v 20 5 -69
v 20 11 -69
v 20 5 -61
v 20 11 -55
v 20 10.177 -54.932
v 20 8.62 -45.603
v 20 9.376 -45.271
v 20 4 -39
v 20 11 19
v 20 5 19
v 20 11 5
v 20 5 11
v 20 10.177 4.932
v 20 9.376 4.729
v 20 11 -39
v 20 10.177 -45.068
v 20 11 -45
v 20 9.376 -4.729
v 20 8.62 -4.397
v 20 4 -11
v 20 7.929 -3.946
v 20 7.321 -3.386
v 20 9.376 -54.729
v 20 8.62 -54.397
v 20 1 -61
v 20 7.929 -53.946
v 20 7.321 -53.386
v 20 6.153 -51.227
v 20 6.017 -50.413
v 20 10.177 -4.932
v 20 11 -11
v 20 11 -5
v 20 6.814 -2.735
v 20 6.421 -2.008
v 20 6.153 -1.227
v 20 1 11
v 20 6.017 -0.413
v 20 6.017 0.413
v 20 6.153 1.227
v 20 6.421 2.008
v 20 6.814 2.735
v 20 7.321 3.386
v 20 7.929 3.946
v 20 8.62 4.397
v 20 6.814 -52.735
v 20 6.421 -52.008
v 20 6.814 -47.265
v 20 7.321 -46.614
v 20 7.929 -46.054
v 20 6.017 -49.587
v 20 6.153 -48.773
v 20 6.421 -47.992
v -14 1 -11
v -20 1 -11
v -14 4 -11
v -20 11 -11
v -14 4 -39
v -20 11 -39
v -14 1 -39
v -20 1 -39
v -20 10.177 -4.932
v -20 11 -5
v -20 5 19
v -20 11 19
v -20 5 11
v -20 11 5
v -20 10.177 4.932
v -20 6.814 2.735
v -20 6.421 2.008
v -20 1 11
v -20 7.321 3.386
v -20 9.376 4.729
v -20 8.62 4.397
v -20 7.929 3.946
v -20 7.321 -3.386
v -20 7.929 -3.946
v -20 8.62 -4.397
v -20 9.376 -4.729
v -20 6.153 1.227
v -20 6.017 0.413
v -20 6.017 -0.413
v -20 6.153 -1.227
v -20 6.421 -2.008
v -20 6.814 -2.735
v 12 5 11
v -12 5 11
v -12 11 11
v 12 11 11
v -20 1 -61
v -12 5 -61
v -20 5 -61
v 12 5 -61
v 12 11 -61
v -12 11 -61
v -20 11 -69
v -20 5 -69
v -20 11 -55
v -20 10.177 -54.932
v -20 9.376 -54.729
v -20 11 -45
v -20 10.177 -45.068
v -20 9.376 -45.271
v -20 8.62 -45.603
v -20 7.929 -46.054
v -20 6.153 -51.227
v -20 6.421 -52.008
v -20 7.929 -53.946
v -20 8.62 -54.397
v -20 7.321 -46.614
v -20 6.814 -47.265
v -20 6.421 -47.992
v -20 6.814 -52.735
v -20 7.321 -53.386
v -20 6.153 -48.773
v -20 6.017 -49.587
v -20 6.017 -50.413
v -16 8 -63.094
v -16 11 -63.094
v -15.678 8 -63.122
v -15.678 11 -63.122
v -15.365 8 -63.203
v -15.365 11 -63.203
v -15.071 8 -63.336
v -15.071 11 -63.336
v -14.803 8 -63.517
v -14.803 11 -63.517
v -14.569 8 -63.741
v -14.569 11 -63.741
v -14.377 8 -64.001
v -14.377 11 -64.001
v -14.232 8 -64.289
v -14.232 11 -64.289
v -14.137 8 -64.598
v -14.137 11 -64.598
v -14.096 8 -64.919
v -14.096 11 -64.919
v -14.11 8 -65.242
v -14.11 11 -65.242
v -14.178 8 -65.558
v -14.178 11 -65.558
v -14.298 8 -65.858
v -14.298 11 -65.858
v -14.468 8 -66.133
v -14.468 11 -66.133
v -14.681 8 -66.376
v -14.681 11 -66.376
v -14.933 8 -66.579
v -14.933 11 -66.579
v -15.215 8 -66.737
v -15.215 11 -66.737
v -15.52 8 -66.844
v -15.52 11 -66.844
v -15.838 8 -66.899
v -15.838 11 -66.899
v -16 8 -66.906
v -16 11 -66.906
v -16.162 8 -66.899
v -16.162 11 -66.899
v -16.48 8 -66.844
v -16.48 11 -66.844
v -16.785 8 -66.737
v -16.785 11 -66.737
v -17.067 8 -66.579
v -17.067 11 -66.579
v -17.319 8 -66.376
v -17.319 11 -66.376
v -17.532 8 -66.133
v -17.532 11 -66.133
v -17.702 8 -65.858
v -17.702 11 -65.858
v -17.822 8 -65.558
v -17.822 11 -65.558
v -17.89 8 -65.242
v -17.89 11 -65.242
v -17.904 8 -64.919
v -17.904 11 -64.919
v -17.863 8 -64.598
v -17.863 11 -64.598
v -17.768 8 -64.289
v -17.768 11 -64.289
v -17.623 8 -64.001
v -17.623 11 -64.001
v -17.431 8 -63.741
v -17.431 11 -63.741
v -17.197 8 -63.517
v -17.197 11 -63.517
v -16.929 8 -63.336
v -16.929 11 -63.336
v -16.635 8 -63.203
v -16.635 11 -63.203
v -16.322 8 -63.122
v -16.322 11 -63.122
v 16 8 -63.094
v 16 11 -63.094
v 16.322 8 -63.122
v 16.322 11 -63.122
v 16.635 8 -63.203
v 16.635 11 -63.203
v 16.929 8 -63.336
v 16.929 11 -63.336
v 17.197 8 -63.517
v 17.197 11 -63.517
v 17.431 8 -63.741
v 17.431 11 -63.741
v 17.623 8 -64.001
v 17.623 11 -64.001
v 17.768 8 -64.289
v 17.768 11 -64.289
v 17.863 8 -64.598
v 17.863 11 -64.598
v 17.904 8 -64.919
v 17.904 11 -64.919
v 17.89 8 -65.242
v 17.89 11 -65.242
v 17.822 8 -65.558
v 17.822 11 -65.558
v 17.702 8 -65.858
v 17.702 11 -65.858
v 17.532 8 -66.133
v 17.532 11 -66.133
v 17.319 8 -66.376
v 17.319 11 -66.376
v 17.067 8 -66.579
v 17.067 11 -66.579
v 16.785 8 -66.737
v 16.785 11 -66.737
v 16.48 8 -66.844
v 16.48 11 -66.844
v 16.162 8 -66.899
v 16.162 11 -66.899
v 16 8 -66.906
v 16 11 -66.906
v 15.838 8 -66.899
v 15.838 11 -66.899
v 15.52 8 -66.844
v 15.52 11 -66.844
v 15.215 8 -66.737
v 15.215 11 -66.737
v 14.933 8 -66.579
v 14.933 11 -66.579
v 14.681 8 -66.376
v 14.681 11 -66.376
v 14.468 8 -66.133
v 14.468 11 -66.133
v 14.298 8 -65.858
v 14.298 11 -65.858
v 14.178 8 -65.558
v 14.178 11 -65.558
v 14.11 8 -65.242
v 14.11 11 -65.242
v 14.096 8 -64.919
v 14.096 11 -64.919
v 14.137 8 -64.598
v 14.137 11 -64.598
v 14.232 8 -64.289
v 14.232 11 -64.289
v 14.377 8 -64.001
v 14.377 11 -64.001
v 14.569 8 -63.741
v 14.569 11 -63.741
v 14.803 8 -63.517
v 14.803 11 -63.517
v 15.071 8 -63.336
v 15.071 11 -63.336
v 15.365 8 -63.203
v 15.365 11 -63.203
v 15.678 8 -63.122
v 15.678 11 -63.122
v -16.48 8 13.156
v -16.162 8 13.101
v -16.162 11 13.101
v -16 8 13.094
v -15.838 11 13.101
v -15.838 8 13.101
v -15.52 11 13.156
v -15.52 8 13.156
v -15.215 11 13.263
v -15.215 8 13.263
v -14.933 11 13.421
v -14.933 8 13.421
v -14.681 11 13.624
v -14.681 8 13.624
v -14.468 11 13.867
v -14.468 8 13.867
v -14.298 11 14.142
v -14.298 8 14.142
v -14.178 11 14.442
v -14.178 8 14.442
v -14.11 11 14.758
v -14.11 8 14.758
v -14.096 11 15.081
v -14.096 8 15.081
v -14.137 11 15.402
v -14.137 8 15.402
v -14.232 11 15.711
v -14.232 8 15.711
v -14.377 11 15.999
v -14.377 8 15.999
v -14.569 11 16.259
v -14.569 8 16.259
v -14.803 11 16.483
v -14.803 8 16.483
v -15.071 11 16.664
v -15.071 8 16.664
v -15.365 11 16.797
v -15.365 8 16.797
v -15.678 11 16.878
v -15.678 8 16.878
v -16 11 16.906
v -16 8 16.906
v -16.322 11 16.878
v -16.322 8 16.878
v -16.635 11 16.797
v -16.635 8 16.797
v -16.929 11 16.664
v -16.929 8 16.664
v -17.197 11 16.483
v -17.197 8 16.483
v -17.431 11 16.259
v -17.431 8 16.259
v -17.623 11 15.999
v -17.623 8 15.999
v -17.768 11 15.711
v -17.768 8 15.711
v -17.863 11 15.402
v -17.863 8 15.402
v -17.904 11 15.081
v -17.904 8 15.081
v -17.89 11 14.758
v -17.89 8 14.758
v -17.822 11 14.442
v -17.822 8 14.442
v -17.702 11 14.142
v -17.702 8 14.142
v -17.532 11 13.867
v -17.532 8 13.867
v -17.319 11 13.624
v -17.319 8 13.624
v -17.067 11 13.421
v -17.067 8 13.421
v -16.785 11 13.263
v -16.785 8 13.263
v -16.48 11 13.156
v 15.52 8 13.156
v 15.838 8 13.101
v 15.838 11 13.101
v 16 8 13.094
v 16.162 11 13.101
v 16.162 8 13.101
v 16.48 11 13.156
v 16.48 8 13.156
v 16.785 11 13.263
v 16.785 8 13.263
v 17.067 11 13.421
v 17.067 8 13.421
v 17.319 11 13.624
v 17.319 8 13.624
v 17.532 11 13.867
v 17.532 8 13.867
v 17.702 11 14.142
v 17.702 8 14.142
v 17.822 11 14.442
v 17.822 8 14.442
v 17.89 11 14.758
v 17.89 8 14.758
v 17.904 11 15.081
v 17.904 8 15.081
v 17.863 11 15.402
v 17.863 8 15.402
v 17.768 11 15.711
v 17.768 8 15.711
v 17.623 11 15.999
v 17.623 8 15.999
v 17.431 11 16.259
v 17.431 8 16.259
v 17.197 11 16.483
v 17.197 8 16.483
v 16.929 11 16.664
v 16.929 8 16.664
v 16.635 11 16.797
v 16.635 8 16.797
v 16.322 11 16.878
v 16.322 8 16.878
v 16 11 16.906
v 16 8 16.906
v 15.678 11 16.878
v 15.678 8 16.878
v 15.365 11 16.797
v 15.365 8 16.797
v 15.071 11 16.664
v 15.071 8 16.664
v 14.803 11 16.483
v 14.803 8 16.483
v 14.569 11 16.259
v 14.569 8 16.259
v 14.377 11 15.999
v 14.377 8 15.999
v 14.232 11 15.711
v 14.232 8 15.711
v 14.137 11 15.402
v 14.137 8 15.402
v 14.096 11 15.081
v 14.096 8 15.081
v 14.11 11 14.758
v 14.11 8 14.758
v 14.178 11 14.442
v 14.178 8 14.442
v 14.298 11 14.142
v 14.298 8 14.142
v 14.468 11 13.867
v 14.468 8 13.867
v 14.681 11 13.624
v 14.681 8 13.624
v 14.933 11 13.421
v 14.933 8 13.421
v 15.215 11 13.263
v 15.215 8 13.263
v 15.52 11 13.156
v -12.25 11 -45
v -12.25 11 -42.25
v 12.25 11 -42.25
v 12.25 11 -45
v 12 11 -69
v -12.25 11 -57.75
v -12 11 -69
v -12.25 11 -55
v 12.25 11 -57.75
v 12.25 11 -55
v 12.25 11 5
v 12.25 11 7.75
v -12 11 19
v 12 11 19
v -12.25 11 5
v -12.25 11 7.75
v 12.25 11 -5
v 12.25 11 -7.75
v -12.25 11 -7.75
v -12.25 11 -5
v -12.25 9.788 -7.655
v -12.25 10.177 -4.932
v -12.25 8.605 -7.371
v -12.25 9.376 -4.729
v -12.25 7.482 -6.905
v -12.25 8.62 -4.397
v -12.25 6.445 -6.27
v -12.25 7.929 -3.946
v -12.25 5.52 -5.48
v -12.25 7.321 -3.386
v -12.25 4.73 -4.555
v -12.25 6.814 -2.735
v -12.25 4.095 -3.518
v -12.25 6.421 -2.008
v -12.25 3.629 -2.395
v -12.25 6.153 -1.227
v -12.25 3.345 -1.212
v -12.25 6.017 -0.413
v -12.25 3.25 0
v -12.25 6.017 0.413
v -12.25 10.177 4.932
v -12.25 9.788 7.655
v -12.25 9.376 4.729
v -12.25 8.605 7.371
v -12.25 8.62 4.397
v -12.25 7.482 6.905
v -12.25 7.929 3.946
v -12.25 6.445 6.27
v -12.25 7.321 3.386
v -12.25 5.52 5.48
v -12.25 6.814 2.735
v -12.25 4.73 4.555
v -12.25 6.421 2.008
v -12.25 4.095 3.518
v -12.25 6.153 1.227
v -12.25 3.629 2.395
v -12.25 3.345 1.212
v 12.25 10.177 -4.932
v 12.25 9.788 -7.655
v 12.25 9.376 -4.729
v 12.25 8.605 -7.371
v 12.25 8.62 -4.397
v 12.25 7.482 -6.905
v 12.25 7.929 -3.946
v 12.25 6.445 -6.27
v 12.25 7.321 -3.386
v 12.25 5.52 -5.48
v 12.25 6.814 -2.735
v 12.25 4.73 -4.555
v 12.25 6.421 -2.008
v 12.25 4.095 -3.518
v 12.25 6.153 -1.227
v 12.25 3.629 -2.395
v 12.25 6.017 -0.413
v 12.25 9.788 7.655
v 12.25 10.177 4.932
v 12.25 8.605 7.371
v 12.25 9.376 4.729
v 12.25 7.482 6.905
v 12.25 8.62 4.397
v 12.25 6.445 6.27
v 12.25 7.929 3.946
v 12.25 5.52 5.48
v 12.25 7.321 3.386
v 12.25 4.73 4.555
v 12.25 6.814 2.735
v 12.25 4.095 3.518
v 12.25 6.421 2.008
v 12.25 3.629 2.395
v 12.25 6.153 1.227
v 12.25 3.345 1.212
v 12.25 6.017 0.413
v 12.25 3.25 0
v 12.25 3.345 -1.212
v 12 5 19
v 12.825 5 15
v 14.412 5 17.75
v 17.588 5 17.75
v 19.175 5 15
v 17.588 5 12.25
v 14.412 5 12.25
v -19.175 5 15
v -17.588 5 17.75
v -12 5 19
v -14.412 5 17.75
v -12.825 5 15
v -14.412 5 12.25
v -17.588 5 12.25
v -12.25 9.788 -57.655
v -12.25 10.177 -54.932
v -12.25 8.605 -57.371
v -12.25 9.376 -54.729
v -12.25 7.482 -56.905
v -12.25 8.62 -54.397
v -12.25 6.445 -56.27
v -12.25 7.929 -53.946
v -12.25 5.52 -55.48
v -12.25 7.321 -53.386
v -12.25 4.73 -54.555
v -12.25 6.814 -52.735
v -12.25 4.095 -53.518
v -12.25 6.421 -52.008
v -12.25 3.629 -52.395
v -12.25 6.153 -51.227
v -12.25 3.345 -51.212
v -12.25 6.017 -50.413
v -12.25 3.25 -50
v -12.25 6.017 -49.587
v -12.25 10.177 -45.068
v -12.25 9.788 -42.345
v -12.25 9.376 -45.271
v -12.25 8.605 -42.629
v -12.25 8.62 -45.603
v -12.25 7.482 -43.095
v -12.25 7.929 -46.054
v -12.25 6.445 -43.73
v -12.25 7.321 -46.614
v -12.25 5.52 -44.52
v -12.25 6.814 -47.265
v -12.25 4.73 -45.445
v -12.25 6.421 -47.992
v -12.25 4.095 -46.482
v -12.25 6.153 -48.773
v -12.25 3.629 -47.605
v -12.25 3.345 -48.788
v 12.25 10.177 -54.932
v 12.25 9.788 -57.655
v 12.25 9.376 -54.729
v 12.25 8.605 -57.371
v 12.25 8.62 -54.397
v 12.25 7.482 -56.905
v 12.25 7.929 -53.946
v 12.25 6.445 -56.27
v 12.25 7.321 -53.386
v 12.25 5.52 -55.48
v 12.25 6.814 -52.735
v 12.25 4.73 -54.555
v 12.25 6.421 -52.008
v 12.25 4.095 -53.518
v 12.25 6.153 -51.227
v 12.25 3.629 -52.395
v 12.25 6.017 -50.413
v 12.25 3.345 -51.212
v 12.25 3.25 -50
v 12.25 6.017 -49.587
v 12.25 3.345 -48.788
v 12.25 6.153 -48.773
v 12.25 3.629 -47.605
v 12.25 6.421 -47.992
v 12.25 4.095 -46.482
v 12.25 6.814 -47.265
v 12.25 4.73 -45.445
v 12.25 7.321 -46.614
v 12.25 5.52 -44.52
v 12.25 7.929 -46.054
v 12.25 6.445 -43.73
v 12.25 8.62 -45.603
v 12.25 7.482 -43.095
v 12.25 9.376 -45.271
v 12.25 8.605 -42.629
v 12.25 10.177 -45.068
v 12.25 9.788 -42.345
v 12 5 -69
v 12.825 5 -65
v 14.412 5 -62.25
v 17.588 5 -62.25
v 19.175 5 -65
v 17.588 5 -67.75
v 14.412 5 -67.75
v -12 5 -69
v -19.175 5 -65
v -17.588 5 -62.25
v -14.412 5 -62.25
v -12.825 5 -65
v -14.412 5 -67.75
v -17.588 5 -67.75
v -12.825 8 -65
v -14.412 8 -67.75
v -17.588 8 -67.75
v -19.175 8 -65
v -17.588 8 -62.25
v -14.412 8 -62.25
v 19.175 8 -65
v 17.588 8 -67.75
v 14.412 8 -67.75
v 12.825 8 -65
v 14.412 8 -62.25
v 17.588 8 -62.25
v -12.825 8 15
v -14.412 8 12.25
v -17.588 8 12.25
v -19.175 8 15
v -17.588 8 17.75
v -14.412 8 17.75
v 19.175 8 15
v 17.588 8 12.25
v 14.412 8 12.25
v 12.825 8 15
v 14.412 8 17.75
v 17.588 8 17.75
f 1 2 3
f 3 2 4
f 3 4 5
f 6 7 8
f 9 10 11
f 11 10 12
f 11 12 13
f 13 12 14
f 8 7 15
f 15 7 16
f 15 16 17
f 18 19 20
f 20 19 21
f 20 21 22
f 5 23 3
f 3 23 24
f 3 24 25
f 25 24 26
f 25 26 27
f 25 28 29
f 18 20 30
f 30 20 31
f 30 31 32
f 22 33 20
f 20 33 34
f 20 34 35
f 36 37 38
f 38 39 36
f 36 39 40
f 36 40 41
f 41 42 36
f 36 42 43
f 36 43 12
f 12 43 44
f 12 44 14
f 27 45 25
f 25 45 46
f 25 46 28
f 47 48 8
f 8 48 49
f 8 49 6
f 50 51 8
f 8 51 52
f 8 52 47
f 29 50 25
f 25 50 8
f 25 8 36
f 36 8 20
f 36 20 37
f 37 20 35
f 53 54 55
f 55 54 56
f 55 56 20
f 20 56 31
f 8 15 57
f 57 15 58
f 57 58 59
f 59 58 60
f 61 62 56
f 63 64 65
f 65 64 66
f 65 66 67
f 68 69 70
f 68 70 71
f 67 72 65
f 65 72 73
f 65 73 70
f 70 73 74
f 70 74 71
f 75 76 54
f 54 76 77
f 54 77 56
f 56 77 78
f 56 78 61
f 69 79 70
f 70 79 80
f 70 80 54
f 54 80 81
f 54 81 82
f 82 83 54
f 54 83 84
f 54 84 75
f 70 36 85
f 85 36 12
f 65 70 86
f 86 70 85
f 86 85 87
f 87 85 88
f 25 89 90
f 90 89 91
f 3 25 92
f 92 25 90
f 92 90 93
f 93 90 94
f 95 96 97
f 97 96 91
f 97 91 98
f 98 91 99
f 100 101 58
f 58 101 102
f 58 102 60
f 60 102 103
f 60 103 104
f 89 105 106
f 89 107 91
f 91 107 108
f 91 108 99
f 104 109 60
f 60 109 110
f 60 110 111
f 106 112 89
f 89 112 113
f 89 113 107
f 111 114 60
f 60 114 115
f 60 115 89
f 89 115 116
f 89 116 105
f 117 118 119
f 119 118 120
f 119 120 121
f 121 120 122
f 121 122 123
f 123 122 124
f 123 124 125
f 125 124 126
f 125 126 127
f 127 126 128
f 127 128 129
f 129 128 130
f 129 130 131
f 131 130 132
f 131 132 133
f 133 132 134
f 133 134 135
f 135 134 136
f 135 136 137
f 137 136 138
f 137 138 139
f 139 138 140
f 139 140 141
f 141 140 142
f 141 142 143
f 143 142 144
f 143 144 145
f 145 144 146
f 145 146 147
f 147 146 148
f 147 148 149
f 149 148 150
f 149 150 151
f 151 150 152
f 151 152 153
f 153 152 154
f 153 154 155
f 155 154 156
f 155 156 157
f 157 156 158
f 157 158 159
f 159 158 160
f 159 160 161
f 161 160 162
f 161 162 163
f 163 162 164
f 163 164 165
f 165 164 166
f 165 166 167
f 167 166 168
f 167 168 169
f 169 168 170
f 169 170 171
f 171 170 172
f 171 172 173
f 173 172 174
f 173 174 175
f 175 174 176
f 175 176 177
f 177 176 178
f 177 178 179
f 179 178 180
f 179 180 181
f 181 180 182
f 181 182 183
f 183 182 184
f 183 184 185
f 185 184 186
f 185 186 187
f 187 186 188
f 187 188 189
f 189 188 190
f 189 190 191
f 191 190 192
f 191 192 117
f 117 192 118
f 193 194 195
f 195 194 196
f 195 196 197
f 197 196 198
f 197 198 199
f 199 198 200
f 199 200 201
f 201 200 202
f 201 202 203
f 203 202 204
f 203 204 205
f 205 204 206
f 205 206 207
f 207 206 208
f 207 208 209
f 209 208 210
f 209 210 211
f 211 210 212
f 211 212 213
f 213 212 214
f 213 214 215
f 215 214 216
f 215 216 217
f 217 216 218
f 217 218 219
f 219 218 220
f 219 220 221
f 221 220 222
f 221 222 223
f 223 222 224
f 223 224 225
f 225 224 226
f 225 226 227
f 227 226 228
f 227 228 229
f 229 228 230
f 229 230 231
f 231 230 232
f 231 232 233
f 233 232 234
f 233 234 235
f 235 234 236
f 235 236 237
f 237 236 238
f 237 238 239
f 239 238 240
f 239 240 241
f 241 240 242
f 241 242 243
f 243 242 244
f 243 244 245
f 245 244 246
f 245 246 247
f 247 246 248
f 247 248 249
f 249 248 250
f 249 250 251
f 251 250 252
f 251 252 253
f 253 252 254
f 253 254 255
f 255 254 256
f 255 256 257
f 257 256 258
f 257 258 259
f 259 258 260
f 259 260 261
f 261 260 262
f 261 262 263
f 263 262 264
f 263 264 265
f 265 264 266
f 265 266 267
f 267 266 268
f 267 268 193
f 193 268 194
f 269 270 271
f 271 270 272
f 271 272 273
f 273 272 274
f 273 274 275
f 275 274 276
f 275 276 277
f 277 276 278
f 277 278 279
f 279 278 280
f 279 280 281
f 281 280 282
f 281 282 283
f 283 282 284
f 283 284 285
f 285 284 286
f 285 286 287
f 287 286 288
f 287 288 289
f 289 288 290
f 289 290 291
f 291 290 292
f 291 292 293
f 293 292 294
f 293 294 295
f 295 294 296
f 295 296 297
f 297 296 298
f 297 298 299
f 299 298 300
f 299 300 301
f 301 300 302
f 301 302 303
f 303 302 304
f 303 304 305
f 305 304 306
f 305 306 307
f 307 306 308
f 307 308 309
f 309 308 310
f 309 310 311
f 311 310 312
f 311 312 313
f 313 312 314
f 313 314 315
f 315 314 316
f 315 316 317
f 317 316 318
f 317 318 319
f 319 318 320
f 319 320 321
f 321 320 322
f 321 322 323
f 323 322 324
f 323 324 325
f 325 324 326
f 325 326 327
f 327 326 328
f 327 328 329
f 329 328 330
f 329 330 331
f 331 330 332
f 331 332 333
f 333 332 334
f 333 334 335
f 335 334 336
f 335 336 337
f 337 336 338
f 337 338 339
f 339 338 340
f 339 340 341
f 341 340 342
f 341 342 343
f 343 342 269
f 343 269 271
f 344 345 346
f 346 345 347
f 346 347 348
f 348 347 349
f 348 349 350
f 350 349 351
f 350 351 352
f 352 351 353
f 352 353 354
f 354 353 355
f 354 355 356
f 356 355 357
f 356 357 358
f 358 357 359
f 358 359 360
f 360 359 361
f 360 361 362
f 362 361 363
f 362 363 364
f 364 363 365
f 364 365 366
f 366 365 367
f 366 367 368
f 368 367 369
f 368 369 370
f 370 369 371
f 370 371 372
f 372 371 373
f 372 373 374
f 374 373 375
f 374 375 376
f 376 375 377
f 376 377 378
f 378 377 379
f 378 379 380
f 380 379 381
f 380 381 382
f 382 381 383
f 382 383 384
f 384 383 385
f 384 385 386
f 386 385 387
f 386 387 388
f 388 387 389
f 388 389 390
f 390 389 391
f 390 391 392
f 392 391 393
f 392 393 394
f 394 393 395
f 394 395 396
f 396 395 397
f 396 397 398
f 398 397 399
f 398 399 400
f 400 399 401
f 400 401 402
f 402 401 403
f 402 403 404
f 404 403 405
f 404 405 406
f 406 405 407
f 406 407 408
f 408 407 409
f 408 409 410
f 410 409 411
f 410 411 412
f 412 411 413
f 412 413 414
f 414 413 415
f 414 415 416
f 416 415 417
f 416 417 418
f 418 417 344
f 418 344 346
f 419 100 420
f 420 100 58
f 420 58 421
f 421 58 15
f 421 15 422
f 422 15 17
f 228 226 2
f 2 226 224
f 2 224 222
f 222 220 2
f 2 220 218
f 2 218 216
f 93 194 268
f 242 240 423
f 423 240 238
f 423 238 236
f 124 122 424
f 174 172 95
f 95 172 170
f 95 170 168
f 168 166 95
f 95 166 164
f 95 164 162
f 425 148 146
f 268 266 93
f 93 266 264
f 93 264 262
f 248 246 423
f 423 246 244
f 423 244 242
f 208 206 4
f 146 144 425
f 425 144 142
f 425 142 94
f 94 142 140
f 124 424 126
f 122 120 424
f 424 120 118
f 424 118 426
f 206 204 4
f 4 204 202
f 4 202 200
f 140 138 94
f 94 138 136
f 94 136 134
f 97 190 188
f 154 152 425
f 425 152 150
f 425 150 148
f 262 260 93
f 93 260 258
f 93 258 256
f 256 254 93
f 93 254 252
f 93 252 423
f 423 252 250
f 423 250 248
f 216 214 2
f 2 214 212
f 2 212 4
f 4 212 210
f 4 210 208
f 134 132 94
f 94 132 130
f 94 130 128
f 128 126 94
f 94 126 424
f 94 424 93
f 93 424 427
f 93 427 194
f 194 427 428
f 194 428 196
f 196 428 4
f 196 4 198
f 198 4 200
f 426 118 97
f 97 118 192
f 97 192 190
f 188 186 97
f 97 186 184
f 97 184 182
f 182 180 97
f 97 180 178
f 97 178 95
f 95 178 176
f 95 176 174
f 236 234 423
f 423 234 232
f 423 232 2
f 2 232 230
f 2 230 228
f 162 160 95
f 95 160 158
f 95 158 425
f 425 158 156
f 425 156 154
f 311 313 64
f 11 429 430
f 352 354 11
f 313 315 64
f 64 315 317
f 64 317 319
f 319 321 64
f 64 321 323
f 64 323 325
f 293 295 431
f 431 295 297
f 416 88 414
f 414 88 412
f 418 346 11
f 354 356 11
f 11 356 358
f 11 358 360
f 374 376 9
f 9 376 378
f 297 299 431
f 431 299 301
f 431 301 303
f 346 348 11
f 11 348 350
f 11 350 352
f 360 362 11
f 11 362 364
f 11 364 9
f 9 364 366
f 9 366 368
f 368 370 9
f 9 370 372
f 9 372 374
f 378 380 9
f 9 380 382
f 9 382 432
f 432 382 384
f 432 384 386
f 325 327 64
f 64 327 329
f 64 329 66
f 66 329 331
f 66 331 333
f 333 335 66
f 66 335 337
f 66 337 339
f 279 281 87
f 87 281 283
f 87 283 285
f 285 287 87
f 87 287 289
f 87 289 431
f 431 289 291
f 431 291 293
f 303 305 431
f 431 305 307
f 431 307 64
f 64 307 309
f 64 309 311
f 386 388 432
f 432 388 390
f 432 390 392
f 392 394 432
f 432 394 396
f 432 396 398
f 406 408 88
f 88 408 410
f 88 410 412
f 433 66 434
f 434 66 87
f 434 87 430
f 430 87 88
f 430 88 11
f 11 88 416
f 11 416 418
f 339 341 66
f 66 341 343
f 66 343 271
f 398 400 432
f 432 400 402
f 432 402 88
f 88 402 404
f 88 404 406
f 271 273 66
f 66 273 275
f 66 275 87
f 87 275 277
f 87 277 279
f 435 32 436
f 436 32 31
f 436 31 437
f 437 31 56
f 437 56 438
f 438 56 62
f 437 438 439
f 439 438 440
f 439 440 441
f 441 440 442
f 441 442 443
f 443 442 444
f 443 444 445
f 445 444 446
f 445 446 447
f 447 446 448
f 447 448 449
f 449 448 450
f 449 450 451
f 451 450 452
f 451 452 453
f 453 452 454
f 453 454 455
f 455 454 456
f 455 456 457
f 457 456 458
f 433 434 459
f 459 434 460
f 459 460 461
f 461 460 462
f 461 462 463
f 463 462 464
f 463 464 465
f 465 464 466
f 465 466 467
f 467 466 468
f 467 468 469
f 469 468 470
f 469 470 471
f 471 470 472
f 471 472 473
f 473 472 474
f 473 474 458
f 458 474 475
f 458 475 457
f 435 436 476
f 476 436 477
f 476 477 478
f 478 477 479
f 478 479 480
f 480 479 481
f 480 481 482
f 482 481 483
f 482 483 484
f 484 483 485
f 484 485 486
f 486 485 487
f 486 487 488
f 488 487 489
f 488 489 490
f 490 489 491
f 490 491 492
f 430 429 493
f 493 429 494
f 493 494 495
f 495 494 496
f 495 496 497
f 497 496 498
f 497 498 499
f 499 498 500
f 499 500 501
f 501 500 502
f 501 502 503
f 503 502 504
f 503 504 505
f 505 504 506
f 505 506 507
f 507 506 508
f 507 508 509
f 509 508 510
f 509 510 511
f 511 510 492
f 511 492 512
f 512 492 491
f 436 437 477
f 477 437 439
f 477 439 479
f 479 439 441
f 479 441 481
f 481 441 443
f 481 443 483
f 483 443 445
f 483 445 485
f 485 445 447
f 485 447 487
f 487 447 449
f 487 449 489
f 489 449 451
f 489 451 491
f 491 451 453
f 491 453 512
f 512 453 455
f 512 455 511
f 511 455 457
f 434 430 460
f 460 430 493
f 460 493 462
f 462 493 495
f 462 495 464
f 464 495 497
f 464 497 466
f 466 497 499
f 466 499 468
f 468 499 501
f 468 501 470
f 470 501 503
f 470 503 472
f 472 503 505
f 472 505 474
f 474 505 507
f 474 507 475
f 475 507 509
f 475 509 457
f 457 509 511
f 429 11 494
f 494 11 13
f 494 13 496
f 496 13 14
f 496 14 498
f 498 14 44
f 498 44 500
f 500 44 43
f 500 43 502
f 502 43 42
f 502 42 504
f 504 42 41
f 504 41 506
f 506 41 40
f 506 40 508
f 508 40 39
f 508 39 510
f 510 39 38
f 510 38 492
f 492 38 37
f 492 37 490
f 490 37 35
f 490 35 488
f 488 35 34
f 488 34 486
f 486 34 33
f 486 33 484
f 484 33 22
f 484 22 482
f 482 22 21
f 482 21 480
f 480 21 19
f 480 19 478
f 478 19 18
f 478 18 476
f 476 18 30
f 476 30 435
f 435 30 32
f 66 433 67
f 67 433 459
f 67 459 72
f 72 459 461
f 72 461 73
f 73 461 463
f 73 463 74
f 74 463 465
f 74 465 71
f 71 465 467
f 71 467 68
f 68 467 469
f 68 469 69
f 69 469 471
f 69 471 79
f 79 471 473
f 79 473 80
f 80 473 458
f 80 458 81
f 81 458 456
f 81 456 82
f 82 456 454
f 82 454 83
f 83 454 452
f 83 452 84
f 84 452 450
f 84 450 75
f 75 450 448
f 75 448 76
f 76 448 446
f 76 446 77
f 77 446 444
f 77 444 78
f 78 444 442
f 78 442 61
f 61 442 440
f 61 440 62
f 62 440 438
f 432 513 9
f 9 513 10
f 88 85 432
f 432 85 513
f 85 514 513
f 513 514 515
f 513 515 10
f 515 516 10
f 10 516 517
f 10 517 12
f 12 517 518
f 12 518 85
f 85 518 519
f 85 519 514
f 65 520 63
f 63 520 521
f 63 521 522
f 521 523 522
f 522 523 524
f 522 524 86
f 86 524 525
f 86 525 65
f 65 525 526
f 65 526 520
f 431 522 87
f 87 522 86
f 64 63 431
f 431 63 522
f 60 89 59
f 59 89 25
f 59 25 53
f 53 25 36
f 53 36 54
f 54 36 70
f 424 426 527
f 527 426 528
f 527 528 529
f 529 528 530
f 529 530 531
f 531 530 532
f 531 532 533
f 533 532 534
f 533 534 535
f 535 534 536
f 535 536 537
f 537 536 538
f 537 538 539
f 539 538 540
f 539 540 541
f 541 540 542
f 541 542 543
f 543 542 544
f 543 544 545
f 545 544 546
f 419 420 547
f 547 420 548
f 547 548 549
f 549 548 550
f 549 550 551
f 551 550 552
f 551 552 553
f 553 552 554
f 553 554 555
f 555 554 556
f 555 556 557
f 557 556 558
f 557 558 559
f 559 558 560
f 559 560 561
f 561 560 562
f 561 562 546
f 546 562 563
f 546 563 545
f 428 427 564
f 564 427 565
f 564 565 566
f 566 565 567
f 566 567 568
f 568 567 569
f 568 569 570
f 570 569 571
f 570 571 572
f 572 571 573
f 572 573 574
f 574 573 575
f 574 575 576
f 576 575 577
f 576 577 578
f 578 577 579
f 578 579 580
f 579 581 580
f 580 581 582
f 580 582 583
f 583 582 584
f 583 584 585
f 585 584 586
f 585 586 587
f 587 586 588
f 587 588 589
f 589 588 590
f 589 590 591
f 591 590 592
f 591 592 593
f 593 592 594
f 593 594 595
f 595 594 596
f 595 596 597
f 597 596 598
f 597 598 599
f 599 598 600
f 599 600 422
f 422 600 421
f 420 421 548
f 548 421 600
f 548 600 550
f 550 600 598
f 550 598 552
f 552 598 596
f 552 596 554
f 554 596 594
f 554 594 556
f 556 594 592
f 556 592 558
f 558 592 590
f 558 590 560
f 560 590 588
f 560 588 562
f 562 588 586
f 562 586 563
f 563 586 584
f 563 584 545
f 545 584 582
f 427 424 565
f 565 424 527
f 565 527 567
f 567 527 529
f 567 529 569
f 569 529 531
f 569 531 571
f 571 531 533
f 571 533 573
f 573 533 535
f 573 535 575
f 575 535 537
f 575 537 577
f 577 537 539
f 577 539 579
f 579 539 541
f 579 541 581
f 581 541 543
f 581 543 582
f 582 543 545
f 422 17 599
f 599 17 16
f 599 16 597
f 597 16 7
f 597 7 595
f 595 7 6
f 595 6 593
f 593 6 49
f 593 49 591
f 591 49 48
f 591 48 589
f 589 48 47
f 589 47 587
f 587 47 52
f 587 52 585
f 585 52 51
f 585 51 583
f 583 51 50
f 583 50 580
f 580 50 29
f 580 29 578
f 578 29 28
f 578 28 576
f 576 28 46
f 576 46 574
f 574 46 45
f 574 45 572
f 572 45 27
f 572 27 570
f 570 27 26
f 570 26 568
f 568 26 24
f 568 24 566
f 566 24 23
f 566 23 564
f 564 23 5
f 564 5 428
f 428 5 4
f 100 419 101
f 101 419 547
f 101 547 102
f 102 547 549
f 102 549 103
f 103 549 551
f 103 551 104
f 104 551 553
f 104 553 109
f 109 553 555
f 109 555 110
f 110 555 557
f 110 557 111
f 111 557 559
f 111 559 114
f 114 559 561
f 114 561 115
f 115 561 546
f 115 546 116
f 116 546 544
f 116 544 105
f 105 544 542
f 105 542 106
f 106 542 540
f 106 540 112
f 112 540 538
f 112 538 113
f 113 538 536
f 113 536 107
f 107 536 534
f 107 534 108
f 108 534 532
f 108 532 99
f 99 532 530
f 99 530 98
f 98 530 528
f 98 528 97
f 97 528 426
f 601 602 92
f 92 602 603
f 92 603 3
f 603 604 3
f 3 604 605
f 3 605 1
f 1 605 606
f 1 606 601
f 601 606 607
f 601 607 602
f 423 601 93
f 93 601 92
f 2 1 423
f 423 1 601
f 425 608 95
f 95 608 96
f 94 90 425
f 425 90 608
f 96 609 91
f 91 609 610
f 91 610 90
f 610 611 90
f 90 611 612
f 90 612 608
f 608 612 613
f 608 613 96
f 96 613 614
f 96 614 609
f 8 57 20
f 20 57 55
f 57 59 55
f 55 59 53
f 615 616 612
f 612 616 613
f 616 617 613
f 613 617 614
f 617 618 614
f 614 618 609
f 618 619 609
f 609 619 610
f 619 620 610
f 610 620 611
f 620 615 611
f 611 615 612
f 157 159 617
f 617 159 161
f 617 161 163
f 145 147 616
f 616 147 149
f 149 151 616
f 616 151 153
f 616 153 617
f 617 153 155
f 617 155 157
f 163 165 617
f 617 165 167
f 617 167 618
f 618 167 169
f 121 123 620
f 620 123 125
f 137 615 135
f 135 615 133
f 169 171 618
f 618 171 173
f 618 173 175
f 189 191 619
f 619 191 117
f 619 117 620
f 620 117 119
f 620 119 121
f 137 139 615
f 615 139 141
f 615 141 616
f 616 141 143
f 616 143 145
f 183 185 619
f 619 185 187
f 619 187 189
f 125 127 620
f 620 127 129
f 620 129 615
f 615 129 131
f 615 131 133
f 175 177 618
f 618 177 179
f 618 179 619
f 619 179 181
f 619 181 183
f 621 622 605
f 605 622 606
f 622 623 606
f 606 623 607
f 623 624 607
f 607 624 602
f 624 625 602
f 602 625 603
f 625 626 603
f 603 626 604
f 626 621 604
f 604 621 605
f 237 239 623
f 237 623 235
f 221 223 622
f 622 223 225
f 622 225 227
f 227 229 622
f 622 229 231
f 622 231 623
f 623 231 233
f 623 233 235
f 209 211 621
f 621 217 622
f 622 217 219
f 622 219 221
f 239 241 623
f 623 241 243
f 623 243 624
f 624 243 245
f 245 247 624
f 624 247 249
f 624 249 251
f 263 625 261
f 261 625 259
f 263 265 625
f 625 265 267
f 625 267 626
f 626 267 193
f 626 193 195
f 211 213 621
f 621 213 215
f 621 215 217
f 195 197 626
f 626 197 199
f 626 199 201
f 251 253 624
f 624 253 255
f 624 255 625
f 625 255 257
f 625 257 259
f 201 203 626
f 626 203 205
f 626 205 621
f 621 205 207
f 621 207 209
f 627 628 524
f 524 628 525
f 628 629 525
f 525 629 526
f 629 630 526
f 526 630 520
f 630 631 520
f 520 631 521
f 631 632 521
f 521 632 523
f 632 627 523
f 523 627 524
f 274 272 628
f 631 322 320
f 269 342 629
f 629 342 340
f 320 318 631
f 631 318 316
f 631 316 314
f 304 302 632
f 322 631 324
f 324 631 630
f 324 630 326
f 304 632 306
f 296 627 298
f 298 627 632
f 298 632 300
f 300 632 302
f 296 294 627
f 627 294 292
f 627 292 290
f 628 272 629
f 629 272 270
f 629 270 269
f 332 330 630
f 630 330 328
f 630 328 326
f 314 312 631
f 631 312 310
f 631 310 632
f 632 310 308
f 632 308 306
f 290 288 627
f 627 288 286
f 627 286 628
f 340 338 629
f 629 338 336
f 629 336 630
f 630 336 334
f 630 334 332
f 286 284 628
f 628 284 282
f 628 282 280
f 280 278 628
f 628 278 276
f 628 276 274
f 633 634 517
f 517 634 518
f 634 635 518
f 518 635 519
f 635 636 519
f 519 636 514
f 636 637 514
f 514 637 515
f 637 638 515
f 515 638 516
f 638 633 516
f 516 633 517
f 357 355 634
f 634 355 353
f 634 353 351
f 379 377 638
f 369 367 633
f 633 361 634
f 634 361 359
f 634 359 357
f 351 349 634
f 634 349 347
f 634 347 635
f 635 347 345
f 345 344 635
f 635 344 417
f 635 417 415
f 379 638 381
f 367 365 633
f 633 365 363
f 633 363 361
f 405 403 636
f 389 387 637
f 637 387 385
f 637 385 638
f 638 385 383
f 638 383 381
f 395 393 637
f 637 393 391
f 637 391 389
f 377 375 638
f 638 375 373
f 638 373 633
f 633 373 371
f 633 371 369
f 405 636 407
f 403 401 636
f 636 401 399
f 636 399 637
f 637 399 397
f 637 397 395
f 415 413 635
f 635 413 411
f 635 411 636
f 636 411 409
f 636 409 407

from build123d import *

# Parameters (mm, degrees)
SKETCH1_W                  = 40
SKETCH1_H                  = 22
BOSS_EXTRUDE1_DEPTH        = 11
SKETCH2_W                  = 40
SKETCH2_H                  = 22
SKETCH2_R                  = 7.843750423
BOSS_EXTRUDE2_DEPTH        = 5
SKETCH3_W                  = 24.5
SKETCH3_H                  = 15.5
CUT_EXTRUDE1_DEPTH         = 7.75
FILLET1_R                  = 7.75
SKETCH4_R                  = 5
CUT_EXTRUDE2_DEPTH         = 36.805900352
SKETCH5_W                  = 8
SKETCH5_H                  = 8
SKETCH5_R                  = 1.905800151
BOSS_EXTRUDE3_DEPTH        = 6
CUT_EXTRUDE3_START         = -3
SKETCH6_R                  = 3
SKETCH6_R_2                = 1.905800151
CUT_EXTRUDE3_DEPTH         = 3
SKETCH7_W                  = 16
SKETCH7_H                  = 16.5
BOSS_EXTRUDE5_DEPTH        = 28
MIRROR14_COPY_1_SKETCH_W   = 8
MIRROR14_COPY_1_SKETCH_H   = 8
MIRROR14_COPY_1_SKETCH_R   = 1.905800151
MIRROR14_COPY_1_DEPTH      = 6
MIRROR14_START             = -3
MIRROR14_COPY_2_SKETCH_R   = 3
MIRROR14_COPY_2_SKETCH_R_2 = 1.905800151
MIRROR14_COPY_2_DEPTH      = 3
FILLET1_OF_MIRROR14_R      = 7.75
SKETCH9_W                  = 28
SKETCH9_H                  = 3
BOSS_EXTRUDE6_DEPTH        = 18
CUT_EXTRUDE4_DEPTH         = 10
CUT_EXTRUDE5_DEPTH         = 73.919476136
CUT_EXTRUDE5_DEPTH_BACK    = 73.919476136
SKETCH11_R                 = 1.75
CUT_EXTRUDE6_DEPTH         = 76.121568141
CUT_EXTRUDE6_DEPTH_BACK    = 76.121568141
SKETCH12_R                 = 1.75
CUT_EXTRUDE9_DEPTH         = 12
CUT_EXTRUDE11_START        = -10
SKETCH16_R                 = 4
SKETCH16_R_2               = 1.75
SKETCH16_W                 = 10
SKETCH16_H                 = 6.5
CUT_EXTRUDE11_DEPTH        = 10
FILLET2_R                  = 2
SKETCH17_W                 = 34
SKETCH17_H                 = 28
CUT_EXTRUDE12_DEPTH        = 74.097537578
SKETCH18_R                 = 1.75
BOSS_EXTRUDE7_DEPTH        = 3
SKETCH19_W                 = 8
SKETCH19_H                 = 8
SKETCH19_R                 = 1.905800151
BOSS_EXTRUDE8_DEPTH        = 3
CUT_EXTRUDE13_START        = -3
SKETCH20_R                 = 1.905800151
CUT_EXTRUDE13_DEPTH        = 3
SKETCH21_W                 = 40
SKETCH21_H                 = 22
CUT_EXTRUDE14_DEPTH        = 73.532751223


# Some blends are built 0.0001 mm under size
with BuildPart() as part:
    # Sketch1 → Boss-Extrude1 (new body)
    with BuildSketch(Plane(origin=(0, 0, 0), x_dir=(1, 0, 0), z_dir=(0, 1, 0))):
        Rectangle(SKETCH1_W, SKETCH1_H)
    boss_extrude1 = extrude(amount=BOSS_EXTRUDE1_DEPTH)

    # Sketch2 → Boss-Extrude2 (add)
    with BuildSketch(Plane(origin=(0, 0, 0), x_dir=(1, 0, 0), z_dir=(0, 1, 0))):
        Rectangle(SKETCH2_W, SKETCH2_H)
        with Locations(Location((0, 0, 0), (0, 0, 270))):
            Circle(SKETCH2_R, mode=Mode.SUBTRACT)
    boss_extrude2 = extrude(amount=-BOSS_EXTRUDE2_DEPTH)

    # Sketch3 → Cut-Extrude1 (cut)
    with BuildSketch(Plane(origin=(0, 11, 0), x_dir=(1, 0, 0), z_dir=(0, 1, 0))):
        Rectangle(SKETCH3_W, SKETCH3_H)
    cut_extrude1 = extrude(amount=-CUT_EXTRUDE1_DEPTH, mode=Mode.SUBTRACT)

    # Fillet1
    fillet1_edges = [part.edges().sort_by_distance(p)[0] for p in [
        (0, 3.25, 7.75),
        (0, 3.25, -7.75),
    ]]
    fillet(fillet1_edges, radius=FILLET1_R - 0.0001)  # a hair under: the kernel refuses the full size

    # Sketch4 → Cut-Extrude2 (cut, symmetric)
    with BuildSketch(Plane(origin=(-12.25, 0, 0), x_dir=(0, 0, -1), z_dir=(1, 0, 0))):
        with Locations((0, 11)):
            Circle(SKETCH4_R)
    cut_extrude2 = extrude(amount=CUT_EXTRUDE2_DEPTH, both=True, mode=Mode.SUBTRACT)

    # Sketch5 → Boss-Extrude3 (add)
    with BuildSketch(Plane(origin=(0, 11, 0), x_dir=(1, 0, 0), z_dir=(0, 1, 0))):
        with Locations((16, -15)):
            Rectangle(SKETCH5_W, SKETCH5_H)
        with Locations(Location((16, -15, 0), (0, 0, 270))):
            Circle(SKETCH5_R, mode=Mode.SUBTRACT)
    boss_extrude3 = extrude(amount=-BOSS_EXTRUDE3_DEPTH)

    # Sketch6 → Cut-Extrude3 (cut)
    with BuildSketch(Plane.XZ.offset(-5).offset(CUT_EXTRUDE3_START)):
        with Locations(Location((16, 15, 0), (0, 0, 270))):
            Circle(SKETCH6_R)
        with Locations(Location((16, 15, 0), (0, 0, 90))):
            Circle(SKETCH6_R_2, mode=Mode.SUBTRACT)
    cut_extrude3 = extrude(amount=CUT_EXTRUDE3_DEPTH, mode=Mode.SUBTRACT)

    # Mirror8: Boss-Extrude3, Cut-Extrude3 across plane
    add(boss_extrude3.mirror(Plane(origin=(0, 0, 0), x_dir=(0, 0, 1), z_dir=(1, 0, 0))))
    add(cut_extrude3.mirror(Plane(origin=(0, 0, 0), x_dir=(0, 0, 1), z_dir=(1, 0, 0))), mode=Mode.SUBTRACT)

    # Sketch7 → Boss-Extrude5 (add)
    with BuildSketch(Plane(origin=(0, 0, -11), x_dir=(-1, 0, 0), z_dir=(0, 0, -1))):
        with Locations((-12, 9.25)):
            Rectangle(SKETCH7_W, SKETCH7_H)
    extrude(amount=BOSS_EXTRUDE5_DEPTH)

    # Mirror14: Boss-Extrude1, Boss-Extrude2, Cut-Extrude1, Cut-Extrude2, Boss-Extrude3, Cut-Extrude3 across plane
    add(boss_extrude1.mirror(Plane.XY.offset(-25)))
    add(boss_extrude2.mirror(Plane.XY.offset(-25)))
    add(cut_extrude1.mirror(Plane.XY.offset(-25)), mode=Mode.SUBTRACT)
    add(cut_extrude2.mirror(Plane.XY.offset(-25)), mode=Mode.SUBTRACT)
    add(boss_extrude3.mirror(Plane.XY.offset(-25)))
    add(cut_extrude3.mirror(Plane.XY.offset(-25)), mode=Mode.SUBTRACT)

    # Mirror14 copy 1 sketch → Mirror14 copy 1 (add)
    with BuildSketch(Plane(origin=(0, 11, -50), x_dir=(-1, 0, 0), z_dir=(0, 1, 0))):
        with Locations((16, -15)):
            Rectangle(MIRROR14_COPY_1_SKETCH_W, MIRROR14_COPY_1_SKETCH_H)
        with Locations(Location((16, -15, 0), (0, 0, 270))):
            Circle(MIRROR14_COPY_1_SKETCH_R, mode=Mode.SUBTRACT)
    extrude(amount=-MIRROR14_COPY_1_DEPTH)

    # Mirror14 copy 2 sketch → Mirror14 copy 2 (cut)
    with BuildSketch(Plane(origin=(0, 5, -50), x_dir=(-1, 0, 0), z_dir=(0, -1, 0)).offset(MIRROR14_START)):
        with Locations(Location((16, 15, 0), (0, 0, 270))):
            Circle(MIRROR14_COPY_2_SKETCH_R)
        with Locations(Location((16, 15, 0), (0, 0, 90))):
            Circle(MIRROR14_COPY_2_SKETCH_R_2, mode=Mode.SUBTRACT)
    extrude(amount=MIRROR14_COPY_2_DEPTH, mode=Mode.SUBTRACT)

    # Fillet1 of Mirror14
    fillet1_of_mirror14_edges = [part.edges().sort_by_distance(p)[0] for p in [
        (0, 3.25, -57.75),
        (0, 3.25, -42.25),
    ]]
    fillet(fillet1_of_mirror14_edges, radius=FILLET1_OF_MIRROR14_R - 0.0001)  # a hair under: the kernel refuses the full size

    # Sketch9 → Boss-Extrude6 (add)
    with BuildSketch(Plane.ZY.offset(-4)):
        with Locations((-25, 2.5)):
            Rectangle(SKETCH9_W, SKETCH9_H)
    extrude(amount=BOSS_EXTRUDE6_DEPTH)

    # Sketch10 → Cut-Extrude4 (cut)
    with BuildSketch(Plane(origin=(0, 17.5, 0), x_dir=(1, 0, 0), z_dir=(0, 1, 0))):
        with BuildLine():
            Line((9, 26.25), (9, 23.75))
            Line((9, 23.75), (11.727178029, 23.75))
            ThreePointArc((11.727178029, 23.75), (11.931001031, 24.360286817), (12, 25))
            ThreePointArc((12, 25), (11.931001031, 25.639713183), (11.727178029, 26.25))
            Line((11.727178029, 26.25), (9, 26.25))
        make_face()
        with BuildLine():
            Line((11.727178029, 23.75), (9, 23.75))
            Line((9, 23.75), (9, 26.25))
            Line((9, 26.25), (11.727178029, 26.25))
            ThreePointArc((11.727178029, 26.25), (6, 25), (11.727178029, 23.75))
        make_face()
        with BuildLine():
            ThreePointArc((12, 25), (11.931001031, 24.360286817), (11.727178029, 23.75))
            Line((11.727178029, 23.75), (20, 23.75))
            Line((20, 23.75), (20, 26.25))
            Line((20, 26.25), (11.727178029, 26.25))
            ThreePointArc((11.727178029, 26.25), (11.931001031, 25.639713183), (12, 25))
        make_face()
    extrude(amount=-CUT_EXTRUDE4_DEPTH, mode=Mode.SUBTRACT)

    # Sketch11 → Cut-Extrude5 (cut, two sides: drawn at the far end of the back side and taken through both)
    with BuildSketch(Plane(origin=(0, 7.5, 0), x_dir=(1, 0, 0), z_dir=(0, 1, 0)).offset(-CUT_EXTRUDE5_DEPTH_BACK)):
        with Locations(Location((9, 25, 0), (0, 0, 270))):
            Circle(SKETCH11_R)
    extrude(amount=CUT_EXTRUDE5_DEPTH + CUT_EXTRUDE5_DEPTH_BACK, mode=Mode.SUBTRACT)

    # Sketch12 → Cut-Extrude6 (cut, two sides: drawn at the far end of the back side and taken through both)
    with BuildSketch(Plane.ZY.offset(-4).offset(-CUT_EXTRUDE6_DEPTH_BACK)):
        with Locations((-33, 11)):
            Circle(SKETCH12_R)
    extrude(amount=CUT_EXTRUDE6_DEPTH + CUT_EXTRUDE6_DEPTH_BACK, mode=Mode.SUBTRACT)

    # Sketch15 → Cut-Extrude9 (cut)
    with BuildSketch(Plane(origin=(20, 0, 0), x_dir=(0, 0, -1), z_dir=(1, 0, 0))):
        Polygon((33, 14.175426481), (30.25, 12.58771324), (30.25, 9.41228676), (33, 7.824573519), (35.75, 9.41228676), (35.75, 12.58771324), align=None)
    extrude(amount=-CUT_EXTRUDE9_DEPTH, mode=Mode.SUBTRACT)

    # Sketch16 → Cut-Extrude11 (cut)
    # profile 1 of 2: a face of its own
    with BuildSketch(Plane(origin=(20, 0, 0), x_dir=(0, 0, -1), z_dir=(1, 0, 0)).offset(CUT_EXTRUDE11_START)):
        with Locations((33, 11)):
            Circle(SKETCH16_R)
        with Locations((33, 11)):
            Circle(SKETCH16_R_2, mode=Mode.SUBTRACT)
    # profile 2 of 2: a face of its own
    with BuildSketch(Plane(origin=(20, 0, 0), x_dir=(0, 0, -1), z_dir=(1, 0, 0)).offset(CUT_EXTRUDE11_START)):
        with Locations((34, 14.25)):
            Rectangle(SKETCH16_W, SKETCH16_H)
    extrude(amount=CUT_EXTRUDE11_DEPTH, mode=Mode.SUBTRACT)

    # Chamfer3
    # the kernel refuses this chamfer: 2.5 mm, written as the material it takes off along each edge
    with BuildSketch(Plane(origin=(4.790141486, 11, -37), x_dir=(0, -0.9712202897009368, 0.23818301550116588), z_dir=(1, 0, 0))) as chamfer3_piece_1_section:
        with BuildLine():
            Line((1.641163776, 0), (-0.550057664, 2.010038976))
            Line((-0.550057664, 2.010038976), (-0.598618679, 1.998129825))
            ThreePointArc((-0.598618679, 1.998129825), (-0.296653042, 0.999716345), (-0.048561014, -0.011909151))
            Line((-0.048561014, -0.011909151), (0.011909151, -0.048561014))
            ThreePointArc((0.011909151, -0.048561014), (0.818444442, 0.062835502), (1.633479525, -0.049405994))
            Line((1.633479525, -0.049405994), (1.641163776, 0))
        make_face()
    chamfer3_piece_1 = extrude(amount=20.419717028, mode=Mode.PRIVATE)
    chamfer3_piece_1 = split(chamfer3_piece_1, bisect_by=Plane(origin=(10, 11.063270064, -39.03704072), z_dir=(-1, 0, 0)), keep=Keep.TOP, mode=Mode.PRIVATE)
    chamfer3_piece_1 = split(chamfer3_piece_1, bisect_by=Plane(origin=(7.395070743, 11.063270064, -39), z_dir=(0, 0, -1)), keep=Keep.TOP, mode=Mode.PRIVATE)
    add(chamfer3_piece_1, mode=Mode.SUBTRACT)
    with BuildSketch(Plane(origin=(10, 11, -37), x_dir=(0, -0.9712202897009377, 0.23818301550116178), z_dir=(1, 0, 0))) as chamfer3_piece_2_section:
        with BuildLine():
            Line((1.641163776, 0), (-0.550057664, 2.010038976))
            Line((-0.550057664, 2.010038976), (-0.598618679, 1.998129825))
            ThreePointArc((-0.598618679, 1.998129825), (-0.296653042, 0.999716345), (-0.048561014, -0.011909151))
            Line((-0.048561014, -0.011909151), (0.011909151, -0.048561014))
            ThreePointArc((0.011909151, -0.048561014), (0.818444442, 0.062835502), (1.633479525, -0.049405994))
            Line((1.633479525, -0.049405994), (1.641163776, 0))
        make_face()
    chamfer3_piece_2 = extrude(amount=15.209858514, mode=Mode.PRIVATE)
    chamfer3_piece_2 = split(chamfer3_piece_2, bisect_by=Plane(origin=(17.604929257, 10.514615405, -39), z_dir=(0, 0, 1)), keep=Keep.TOP, mode=Mode.PRIVATE)
    add(chamfer3_piece_2, mode=Mode.SUBTRACT)
    with BuildSketch(Plane(origin=(10, 11, -37), x_dir=(0, -0.9712202897009377, 0.23818301550116178), z_dir=(1, 0, 0))) as chamfer3_piece_3_section:
        with BuildLine():
            Line((1.641163776, 0), (-0.550057664, 2.010038976))
            Line((-0.550057664, 2.010038976), (-0.598618679, 1.998129825))
            ThreePointArc((-0.598618679, 1.998129825), (-0.296653042, 0.999716345), (-0.048561014, -0.011909151))
            Line((-0.048561014, -0.011909151), (0.011909151, -0.048561014))
            ThreePointArc((0.011909151, -0.048561014), (0.818444442, 0.062835502), (1.633479525, -0.049405994))
            Line((1.633479525, -0.049405994), (1.641163776, 0))
        make_face()
    chamfer3_piece_3 = extrude(amount=15.209858514, mode=Mode.PRIVATE)
    chamfer3_piece_3 = split(chamfer3_piece_3, bisect_by=Plane(origin=(17.604929257, 11.063270064, -39), z_dir=(0, 0, -1)), keep=Keep.TOP, mode=Mode.PRIVATE)
    add(chamfer3_piece_3, mode=Mode.SUBTRACT)

    # Fillet2
    fillet2_edges = [part.edges().sort_by_distance(p)[0] for p in [
        (11.727178029, 12.5, -23.75),
        (11.727178029, 12.5, -26.25),
    ]]
    fillet(fillet2_edges, radius=FILLET2_R)

    # Sketch17 → Cut-Extrude12 (cut, through all)
    with BuildSketch(Plane(origin=(0, 4, 0), x_dir=(1, 0, 0), z_dir=(0, 1, 0))):
        with Locations((3, 25)):
            Rectangle(SKETCH17_W, SKETCH17_H)
    extrude(amount=CUT_EXTRUDE12_DEPTH, mode=Mode.SUBTRACT)

    # Sketch18 → Boss-Extrude7 (add)
    with BuildSketch(Plane(origin=(0, 4, 0), x_dir=(1, 0, 0), z_dir=(0, 1, 0))):
        with Locations((9, 25)):
            Circle(SKETCH18_R)
    extrude(amount=-BOSS_EXTRUDE7_DEPTH)

    # Sketch19 → Boss-Extrude8 (add)
    # profile 1 of 4: a face of its own
    with BuildSketch(Plane.XZ.offset(-8)):
        with Locations((-16, -65)):
            Rectangle(SKETCH19_W, SKETCH19_H)
        with Locations(Location((-16, -65, 0), (0, 0, 270))):
            Circle(SKETCH19_R, mode=Mode.SUBTRACT)
    # profile 2 of 4: a face of its own
    with BuildSketch(Plane.XZ.offset(-8)):
        with Locations((16, -65)):
            Rectangle(SKETCH19_W, SKETCH19_H)
        with Locations(Location((16, -65, 0), (0, 0, 270))):
            Circle(SKETCH19_R, mode=Mode.SUBTRACT)
    # profile 3 of 4: a face of its own
    with BuildSketch(Plane.XZ.offset(-8)):
        with Locations((16, 15)):
            Rectangle(SKETCH19_W, SKETCH19_H)
        with Locations(Location((16, 15, 0), (0, 0, 90))):
            Circle(SKETCH19_R, mode=Mode.SUBTRACT)
    # profile 4 of 4: a face of its own
    with BuildSketch(Plane.XZ.offset(-8)):
        with Locations((-16, 15)):
            Rectangle(SKETCH19_W, SKETCH19_H)
        with Locations(Location((-16, 15, 0), (0, 0, 90))):
            Circle(SKETCH19_R, mode=Mode.SUBTRACT)
    extrude(amount=BOSS_EXTRUDE8_DEPTH)

    # Sketch20 → Cut-Extrude13 (cut)
    # profile 1 of 4: a face of its own
    with BuildSketch(Plane.XZ.offset(-5).offset(CUT_EXTRUDE13_START)):
        Polygon((-12.824573519, 15), (-14.41228676, 17.75), (-17.58771324, 17.75), (-19.175426481, 15), (-17.58771324, 12.25), (-14.41228676, 12.25), align=None)
        with Locations(Location((-16, 15, 0), (0, 0, 90))):
            Circle(SKETCH20_R, mode=Mode.SUBTRACT)
    # profile 2 of 4: a face of its own
    with BuildSketch(Plane.XZ.offset(-5).offset(CUT_EXTRUDE13_START)):
        Polygon((19.175426481, 15), (17.58771324, 17.75), (14.41228676, 17.75), (12.824573519, 15), (14.41228676, 12.25), (17.58771324, 12.25), align=None)
        with Locations(Location((16, 15, 0), (0, 0, 90))):
            Circle(SKETCH20_R, mode=Mode.SUBTRACT)
    # profile 3 of 4: a face of its own
    with BuildSketch(Plane.XZ.offset(-5).offset(CUT_EXTRUDE13_START)):
        Polygon((19.175426481, -65), (17.58771324, -62.25), (14.41228676, -62.25), (12.824573519, -65), (14.41228676, -67.75), (17.58771324, -67.75), align=None)
        with Locations(Location((16, -65, 0), (0, 0, 270))):
            Circle(SKETCH20_R, mode=Mode.SUBTRACT)
    # profile 4 of 4: a face of its own
    with BuildSketch(Plane.XZ.offset(-5).offset(CUT_EXTRUDE13_START)):
        Polygon((-12.824573519, -65), (-14.41228676, -62.25), (-17.58771324, -62.25), (-19.175426481, -65), (-17.58771324, -67.75), (-14.41228676, -67.75), align=None)
        with Locations(Location((-16, -65, 0), (0, 0, 270))):
            Circle(SKETCH20_R, mode=Mode.SUBTRACT)
    extrude(amount=CUT_EXTRUDE13_DEPTH, mode=Mode.SUBTRACT)

    # Sketch21 → Cut-Extrude14 (cut, through all)
    with BuildSketch(Plane.XZ.offset(-1)):
        with Locations((0, -50)):
            Rectangle(SKETCH21_W, SKETCH21_H)
        Rectangle(SKETCH21_W, SKETCH21_H)
    extrude(amount=CUT_EXTRUDE14_DEPTH, mode=Mode.SUBTRACT)


solid = part.part
